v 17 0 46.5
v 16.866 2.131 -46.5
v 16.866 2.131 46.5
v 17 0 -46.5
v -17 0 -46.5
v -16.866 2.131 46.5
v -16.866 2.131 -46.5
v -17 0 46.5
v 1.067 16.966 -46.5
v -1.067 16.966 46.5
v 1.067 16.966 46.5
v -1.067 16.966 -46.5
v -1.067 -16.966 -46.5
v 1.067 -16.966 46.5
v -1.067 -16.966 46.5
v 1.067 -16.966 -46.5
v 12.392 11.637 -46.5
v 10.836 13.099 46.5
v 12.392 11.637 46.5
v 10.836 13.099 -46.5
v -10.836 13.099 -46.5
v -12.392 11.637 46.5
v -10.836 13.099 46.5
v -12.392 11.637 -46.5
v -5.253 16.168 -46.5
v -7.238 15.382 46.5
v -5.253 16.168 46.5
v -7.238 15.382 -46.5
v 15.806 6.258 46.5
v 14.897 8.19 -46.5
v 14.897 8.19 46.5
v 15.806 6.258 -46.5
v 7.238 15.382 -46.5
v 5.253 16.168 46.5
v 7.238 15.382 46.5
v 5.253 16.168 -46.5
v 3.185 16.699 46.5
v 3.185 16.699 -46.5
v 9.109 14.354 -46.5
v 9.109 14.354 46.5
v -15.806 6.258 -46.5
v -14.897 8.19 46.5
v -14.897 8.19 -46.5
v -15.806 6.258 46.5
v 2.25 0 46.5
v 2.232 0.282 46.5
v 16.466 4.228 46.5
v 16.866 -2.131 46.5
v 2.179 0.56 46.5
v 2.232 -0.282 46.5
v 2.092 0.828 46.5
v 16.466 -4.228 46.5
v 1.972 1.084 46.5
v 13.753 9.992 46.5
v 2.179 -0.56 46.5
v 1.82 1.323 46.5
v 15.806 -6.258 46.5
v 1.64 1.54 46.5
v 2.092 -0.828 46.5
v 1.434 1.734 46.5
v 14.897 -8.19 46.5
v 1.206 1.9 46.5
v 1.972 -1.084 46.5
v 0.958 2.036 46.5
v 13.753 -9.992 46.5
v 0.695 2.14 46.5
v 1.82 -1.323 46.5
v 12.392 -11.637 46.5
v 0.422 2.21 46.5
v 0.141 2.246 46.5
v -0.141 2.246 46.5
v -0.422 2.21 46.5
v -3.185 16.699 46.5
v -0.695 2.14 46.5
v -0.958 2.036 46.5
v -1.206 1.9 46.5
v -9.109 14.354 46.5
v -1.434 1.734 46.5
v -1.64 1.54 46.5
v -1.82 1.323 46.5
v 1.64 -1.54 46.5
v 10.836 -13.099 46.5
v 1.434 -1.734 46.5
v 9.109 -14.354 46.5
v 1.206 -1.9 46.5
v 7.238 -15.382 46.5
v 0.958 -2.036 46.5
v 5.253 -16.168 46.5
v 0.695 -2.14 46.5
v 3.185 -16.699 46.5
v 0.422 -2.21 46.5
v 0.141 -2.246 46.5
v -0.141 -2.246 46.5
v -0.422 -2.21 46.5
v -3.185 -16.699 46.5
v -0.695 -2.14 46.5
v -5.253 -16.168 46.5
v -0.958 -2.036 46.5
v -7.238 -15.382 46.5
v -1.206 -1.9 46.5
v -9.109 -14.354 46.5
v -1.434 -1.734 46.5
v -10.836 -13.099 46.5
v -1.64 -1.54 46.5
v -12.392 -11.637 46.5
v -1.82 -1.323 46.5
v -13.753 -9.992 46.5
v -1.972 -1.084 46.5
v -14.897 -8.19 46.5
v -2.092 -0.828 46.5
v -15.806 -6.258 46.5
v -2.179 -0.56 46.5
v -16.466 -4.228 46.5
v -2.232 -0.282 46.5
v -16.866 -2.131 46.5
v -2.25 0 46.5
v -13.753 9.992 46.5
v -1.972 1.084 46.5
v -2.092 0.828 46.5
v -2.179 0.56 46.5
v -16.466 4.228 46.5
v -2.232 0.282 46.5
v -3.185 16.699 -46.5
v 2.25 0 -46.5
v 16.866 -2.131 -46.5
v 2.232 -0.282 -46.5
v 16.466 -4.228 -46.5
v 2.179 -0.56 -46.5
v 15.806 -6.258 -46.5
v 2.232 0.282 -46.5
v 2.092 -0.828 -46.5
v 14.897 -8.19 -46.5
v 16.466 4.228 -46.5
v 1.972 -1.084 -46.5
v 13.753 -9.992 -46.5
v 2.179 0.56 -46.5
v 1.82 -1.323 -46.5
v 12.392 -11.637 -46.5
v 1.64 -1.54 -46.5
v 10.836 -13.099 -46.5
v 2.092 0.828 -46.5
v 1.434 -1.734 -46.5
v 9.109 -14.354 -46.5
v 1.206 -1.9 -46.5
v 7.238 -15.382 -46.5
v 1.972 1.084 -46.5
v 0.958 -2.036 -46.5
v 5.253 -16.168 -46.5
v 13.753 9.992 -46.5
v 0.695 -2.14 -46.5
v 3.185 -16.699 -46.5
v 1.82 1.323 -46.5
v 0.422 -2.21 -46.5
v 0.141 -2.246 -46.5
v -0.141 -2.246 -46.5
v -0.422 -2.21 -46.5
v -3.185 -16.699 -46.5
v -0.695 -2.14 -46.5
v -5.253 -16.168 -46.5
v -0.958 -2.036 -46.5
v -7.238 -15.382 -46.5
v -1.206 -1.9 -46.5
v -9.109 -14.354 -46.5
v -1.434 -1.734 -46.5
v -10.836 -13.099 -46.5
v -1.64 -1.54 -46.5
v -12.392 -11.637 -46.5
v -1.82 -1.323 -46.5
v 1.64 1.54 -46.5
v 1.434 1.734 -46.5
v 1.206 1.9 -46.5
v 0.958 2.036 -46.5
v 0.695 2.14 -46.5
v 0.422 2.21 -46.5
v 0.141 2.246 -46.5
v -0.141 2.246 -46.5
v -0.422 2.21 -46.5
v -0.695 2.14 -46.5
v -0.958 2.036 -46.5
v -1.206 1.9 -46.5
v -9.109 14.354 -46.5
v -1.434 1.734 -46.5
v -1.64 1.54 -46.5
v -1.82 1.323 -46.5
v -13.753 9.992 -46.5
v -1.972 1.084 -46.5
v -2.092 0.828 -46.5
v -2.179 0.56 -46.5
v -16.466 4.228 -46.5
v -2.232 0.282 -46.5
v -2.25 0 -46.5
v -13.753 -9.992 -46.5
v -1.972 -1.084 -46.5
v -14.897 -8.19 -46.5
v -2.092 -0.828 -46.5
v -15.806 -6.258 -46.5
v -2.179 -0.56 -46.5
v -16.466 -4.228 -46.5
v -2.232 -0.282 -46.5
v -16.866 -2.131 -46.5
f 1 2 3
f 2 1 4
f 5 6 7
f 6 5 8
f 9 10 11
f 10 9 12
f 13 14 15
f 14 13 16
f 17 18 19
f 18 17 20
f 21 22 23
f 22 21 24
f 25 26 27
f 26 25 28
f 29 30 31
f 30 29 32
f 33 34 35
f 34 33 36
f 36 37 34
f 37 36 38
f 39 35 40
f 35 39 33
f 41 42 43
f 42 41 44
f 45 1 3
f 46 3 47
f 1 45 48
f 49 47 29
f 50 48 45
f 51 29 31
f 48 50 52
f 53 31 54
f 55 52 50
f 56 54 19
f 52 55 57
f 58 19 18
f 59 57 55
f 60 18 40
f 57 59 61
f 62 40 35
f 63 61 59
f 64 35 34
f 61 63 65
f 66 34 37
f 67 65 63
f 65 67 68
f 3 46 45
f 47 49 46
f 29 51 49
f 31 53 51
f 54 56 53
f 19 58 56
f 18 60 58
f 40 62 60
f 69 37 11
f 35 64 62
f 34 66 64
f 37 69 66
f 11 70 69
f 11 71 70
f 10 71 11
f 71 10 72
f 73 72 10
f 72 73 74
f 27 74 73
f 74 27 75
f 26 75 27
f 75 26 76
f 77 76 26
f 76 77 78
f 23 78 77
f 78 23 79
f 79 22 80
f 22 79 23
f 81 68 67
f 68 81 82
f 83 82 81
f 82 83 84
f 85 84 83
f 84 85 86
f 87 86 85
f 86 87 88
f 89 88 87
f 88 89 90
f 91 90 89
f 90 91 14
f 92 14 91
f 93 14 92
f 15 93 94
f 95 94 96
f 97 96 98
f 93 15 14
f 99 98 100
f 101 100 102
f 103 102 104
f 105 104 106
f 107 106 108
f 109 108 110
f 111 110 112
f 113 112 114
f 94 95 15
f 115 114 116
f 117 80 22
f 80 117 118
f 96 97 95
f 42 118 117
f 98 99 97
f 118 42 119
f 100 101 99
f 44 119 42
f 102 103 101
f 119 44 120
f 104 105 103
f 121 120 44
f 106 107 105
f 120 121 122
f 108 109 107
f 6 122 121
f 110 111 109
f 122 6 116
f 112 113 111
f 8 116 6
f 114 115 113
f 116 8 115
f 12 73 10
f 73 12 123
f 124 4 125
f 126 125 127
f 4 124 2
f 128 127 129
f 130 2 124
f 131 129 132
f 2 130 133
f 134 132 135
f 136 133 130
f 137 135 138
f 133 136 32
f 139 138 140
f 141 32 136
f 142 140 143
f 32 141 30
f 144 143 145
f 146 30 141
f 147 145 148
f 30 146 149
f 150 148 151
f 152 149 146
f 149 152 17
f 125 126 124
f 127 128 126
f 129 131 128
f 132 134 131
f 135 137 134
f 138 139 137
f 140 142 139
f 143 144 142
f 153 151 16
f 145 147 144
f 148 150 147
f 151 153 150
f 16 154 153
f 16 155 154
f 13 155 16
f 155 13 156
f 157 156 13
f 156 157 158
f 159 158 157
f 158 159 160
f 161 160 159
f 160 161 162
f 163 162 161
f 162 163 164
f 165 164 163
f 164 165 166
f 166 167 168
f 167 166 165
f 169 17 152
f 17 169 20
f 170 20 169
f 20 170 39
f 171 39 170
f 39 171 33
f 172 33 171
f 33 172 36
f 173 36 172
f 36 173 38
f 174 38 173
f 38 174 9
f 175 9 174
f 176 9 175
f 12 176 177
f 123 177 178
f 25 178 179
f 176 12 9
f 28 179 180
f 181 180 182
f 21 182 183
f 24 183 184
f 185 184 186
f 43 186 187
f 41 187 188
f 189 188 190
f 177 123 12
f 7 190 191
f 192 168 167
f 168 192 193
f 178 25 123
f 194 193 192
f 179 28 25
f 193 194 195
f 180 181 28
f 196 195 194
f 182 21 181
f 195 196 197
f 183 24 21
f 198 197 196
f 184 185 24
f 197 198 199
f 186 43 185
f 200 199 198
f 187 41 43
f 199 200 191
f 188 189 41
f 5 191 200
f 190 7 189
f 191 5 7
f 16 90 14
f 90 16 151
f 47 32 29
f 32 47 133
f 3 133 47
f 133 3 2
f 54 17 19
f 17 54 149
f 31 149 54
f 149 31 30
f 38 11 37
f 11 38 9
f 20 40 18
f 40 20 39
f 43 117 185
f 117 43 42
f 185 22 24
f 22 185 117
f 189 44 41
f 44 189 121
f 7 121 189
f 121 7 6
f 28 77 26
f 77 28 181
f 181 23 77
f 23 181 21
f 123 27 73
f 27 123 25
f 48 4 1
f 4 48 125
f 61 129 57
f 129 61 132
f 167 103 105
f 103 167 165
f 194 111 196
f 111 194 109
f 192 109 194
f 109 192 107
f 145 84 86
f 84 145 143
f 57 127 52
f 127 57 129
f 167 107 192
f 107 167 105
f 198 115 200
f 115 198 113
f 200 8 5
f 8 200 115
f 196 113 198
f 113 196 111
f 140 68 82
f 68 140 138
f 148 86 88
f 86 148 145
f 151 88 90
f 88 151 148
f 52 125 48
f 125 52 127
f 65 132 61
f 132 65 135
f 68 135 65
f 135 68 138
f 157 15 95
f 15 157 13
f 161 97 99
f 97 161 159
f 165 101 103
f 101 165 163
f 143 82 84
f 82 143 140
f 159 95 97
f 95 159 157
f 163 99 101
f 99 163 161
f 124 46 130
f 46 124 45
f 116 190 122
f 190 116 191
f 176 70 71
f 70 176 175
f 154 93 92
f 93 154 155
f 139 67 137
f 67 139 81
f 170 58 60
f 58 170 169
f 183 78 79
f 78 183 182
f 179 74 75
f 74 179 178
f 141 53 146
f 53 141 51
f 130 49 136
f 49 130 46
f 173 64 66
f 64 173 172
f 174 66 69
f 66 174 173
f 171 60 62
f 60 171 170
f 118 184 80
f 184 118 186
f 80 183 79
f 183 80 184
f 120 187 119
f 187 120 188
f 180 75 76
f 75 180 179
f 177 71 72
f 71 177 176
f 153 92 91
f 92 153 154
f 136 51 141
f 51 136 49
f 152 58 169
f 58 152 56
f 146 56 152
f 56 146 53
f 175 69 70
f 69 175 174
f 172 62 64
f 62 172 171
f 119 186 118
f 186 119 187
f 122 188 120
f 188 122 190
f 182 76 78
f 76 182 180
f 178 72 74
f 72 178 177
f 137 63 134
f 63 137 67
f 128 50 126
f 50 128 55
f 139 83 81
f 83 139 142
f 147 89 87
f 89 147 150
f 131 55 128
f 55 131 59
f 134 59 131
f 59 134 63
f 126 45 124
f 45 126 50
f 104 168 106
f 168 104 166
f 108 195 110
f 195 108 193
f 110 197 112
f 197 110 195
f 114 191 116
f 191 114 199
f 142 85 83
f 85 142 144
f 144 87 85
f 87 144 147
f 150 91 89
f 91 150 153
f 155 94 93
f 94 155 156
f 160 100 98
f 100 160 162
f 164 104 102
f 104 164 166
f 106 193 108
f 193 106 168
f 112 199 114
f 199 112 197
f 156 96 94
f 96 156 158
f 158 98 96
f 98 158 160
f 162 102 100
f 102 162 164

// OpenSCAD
$fn = 50;


difference() {
	union() {
		translate(v = [0, 0, -46.5000000000]) {
			cylinder(h = 93, r = 17.0000000000);
		}
	}
	union() {
		translate(v = [0, 0, -100.0000000000]) {
			cylinder(h = 200, r = 2.2500000000);
		}
	}
}
